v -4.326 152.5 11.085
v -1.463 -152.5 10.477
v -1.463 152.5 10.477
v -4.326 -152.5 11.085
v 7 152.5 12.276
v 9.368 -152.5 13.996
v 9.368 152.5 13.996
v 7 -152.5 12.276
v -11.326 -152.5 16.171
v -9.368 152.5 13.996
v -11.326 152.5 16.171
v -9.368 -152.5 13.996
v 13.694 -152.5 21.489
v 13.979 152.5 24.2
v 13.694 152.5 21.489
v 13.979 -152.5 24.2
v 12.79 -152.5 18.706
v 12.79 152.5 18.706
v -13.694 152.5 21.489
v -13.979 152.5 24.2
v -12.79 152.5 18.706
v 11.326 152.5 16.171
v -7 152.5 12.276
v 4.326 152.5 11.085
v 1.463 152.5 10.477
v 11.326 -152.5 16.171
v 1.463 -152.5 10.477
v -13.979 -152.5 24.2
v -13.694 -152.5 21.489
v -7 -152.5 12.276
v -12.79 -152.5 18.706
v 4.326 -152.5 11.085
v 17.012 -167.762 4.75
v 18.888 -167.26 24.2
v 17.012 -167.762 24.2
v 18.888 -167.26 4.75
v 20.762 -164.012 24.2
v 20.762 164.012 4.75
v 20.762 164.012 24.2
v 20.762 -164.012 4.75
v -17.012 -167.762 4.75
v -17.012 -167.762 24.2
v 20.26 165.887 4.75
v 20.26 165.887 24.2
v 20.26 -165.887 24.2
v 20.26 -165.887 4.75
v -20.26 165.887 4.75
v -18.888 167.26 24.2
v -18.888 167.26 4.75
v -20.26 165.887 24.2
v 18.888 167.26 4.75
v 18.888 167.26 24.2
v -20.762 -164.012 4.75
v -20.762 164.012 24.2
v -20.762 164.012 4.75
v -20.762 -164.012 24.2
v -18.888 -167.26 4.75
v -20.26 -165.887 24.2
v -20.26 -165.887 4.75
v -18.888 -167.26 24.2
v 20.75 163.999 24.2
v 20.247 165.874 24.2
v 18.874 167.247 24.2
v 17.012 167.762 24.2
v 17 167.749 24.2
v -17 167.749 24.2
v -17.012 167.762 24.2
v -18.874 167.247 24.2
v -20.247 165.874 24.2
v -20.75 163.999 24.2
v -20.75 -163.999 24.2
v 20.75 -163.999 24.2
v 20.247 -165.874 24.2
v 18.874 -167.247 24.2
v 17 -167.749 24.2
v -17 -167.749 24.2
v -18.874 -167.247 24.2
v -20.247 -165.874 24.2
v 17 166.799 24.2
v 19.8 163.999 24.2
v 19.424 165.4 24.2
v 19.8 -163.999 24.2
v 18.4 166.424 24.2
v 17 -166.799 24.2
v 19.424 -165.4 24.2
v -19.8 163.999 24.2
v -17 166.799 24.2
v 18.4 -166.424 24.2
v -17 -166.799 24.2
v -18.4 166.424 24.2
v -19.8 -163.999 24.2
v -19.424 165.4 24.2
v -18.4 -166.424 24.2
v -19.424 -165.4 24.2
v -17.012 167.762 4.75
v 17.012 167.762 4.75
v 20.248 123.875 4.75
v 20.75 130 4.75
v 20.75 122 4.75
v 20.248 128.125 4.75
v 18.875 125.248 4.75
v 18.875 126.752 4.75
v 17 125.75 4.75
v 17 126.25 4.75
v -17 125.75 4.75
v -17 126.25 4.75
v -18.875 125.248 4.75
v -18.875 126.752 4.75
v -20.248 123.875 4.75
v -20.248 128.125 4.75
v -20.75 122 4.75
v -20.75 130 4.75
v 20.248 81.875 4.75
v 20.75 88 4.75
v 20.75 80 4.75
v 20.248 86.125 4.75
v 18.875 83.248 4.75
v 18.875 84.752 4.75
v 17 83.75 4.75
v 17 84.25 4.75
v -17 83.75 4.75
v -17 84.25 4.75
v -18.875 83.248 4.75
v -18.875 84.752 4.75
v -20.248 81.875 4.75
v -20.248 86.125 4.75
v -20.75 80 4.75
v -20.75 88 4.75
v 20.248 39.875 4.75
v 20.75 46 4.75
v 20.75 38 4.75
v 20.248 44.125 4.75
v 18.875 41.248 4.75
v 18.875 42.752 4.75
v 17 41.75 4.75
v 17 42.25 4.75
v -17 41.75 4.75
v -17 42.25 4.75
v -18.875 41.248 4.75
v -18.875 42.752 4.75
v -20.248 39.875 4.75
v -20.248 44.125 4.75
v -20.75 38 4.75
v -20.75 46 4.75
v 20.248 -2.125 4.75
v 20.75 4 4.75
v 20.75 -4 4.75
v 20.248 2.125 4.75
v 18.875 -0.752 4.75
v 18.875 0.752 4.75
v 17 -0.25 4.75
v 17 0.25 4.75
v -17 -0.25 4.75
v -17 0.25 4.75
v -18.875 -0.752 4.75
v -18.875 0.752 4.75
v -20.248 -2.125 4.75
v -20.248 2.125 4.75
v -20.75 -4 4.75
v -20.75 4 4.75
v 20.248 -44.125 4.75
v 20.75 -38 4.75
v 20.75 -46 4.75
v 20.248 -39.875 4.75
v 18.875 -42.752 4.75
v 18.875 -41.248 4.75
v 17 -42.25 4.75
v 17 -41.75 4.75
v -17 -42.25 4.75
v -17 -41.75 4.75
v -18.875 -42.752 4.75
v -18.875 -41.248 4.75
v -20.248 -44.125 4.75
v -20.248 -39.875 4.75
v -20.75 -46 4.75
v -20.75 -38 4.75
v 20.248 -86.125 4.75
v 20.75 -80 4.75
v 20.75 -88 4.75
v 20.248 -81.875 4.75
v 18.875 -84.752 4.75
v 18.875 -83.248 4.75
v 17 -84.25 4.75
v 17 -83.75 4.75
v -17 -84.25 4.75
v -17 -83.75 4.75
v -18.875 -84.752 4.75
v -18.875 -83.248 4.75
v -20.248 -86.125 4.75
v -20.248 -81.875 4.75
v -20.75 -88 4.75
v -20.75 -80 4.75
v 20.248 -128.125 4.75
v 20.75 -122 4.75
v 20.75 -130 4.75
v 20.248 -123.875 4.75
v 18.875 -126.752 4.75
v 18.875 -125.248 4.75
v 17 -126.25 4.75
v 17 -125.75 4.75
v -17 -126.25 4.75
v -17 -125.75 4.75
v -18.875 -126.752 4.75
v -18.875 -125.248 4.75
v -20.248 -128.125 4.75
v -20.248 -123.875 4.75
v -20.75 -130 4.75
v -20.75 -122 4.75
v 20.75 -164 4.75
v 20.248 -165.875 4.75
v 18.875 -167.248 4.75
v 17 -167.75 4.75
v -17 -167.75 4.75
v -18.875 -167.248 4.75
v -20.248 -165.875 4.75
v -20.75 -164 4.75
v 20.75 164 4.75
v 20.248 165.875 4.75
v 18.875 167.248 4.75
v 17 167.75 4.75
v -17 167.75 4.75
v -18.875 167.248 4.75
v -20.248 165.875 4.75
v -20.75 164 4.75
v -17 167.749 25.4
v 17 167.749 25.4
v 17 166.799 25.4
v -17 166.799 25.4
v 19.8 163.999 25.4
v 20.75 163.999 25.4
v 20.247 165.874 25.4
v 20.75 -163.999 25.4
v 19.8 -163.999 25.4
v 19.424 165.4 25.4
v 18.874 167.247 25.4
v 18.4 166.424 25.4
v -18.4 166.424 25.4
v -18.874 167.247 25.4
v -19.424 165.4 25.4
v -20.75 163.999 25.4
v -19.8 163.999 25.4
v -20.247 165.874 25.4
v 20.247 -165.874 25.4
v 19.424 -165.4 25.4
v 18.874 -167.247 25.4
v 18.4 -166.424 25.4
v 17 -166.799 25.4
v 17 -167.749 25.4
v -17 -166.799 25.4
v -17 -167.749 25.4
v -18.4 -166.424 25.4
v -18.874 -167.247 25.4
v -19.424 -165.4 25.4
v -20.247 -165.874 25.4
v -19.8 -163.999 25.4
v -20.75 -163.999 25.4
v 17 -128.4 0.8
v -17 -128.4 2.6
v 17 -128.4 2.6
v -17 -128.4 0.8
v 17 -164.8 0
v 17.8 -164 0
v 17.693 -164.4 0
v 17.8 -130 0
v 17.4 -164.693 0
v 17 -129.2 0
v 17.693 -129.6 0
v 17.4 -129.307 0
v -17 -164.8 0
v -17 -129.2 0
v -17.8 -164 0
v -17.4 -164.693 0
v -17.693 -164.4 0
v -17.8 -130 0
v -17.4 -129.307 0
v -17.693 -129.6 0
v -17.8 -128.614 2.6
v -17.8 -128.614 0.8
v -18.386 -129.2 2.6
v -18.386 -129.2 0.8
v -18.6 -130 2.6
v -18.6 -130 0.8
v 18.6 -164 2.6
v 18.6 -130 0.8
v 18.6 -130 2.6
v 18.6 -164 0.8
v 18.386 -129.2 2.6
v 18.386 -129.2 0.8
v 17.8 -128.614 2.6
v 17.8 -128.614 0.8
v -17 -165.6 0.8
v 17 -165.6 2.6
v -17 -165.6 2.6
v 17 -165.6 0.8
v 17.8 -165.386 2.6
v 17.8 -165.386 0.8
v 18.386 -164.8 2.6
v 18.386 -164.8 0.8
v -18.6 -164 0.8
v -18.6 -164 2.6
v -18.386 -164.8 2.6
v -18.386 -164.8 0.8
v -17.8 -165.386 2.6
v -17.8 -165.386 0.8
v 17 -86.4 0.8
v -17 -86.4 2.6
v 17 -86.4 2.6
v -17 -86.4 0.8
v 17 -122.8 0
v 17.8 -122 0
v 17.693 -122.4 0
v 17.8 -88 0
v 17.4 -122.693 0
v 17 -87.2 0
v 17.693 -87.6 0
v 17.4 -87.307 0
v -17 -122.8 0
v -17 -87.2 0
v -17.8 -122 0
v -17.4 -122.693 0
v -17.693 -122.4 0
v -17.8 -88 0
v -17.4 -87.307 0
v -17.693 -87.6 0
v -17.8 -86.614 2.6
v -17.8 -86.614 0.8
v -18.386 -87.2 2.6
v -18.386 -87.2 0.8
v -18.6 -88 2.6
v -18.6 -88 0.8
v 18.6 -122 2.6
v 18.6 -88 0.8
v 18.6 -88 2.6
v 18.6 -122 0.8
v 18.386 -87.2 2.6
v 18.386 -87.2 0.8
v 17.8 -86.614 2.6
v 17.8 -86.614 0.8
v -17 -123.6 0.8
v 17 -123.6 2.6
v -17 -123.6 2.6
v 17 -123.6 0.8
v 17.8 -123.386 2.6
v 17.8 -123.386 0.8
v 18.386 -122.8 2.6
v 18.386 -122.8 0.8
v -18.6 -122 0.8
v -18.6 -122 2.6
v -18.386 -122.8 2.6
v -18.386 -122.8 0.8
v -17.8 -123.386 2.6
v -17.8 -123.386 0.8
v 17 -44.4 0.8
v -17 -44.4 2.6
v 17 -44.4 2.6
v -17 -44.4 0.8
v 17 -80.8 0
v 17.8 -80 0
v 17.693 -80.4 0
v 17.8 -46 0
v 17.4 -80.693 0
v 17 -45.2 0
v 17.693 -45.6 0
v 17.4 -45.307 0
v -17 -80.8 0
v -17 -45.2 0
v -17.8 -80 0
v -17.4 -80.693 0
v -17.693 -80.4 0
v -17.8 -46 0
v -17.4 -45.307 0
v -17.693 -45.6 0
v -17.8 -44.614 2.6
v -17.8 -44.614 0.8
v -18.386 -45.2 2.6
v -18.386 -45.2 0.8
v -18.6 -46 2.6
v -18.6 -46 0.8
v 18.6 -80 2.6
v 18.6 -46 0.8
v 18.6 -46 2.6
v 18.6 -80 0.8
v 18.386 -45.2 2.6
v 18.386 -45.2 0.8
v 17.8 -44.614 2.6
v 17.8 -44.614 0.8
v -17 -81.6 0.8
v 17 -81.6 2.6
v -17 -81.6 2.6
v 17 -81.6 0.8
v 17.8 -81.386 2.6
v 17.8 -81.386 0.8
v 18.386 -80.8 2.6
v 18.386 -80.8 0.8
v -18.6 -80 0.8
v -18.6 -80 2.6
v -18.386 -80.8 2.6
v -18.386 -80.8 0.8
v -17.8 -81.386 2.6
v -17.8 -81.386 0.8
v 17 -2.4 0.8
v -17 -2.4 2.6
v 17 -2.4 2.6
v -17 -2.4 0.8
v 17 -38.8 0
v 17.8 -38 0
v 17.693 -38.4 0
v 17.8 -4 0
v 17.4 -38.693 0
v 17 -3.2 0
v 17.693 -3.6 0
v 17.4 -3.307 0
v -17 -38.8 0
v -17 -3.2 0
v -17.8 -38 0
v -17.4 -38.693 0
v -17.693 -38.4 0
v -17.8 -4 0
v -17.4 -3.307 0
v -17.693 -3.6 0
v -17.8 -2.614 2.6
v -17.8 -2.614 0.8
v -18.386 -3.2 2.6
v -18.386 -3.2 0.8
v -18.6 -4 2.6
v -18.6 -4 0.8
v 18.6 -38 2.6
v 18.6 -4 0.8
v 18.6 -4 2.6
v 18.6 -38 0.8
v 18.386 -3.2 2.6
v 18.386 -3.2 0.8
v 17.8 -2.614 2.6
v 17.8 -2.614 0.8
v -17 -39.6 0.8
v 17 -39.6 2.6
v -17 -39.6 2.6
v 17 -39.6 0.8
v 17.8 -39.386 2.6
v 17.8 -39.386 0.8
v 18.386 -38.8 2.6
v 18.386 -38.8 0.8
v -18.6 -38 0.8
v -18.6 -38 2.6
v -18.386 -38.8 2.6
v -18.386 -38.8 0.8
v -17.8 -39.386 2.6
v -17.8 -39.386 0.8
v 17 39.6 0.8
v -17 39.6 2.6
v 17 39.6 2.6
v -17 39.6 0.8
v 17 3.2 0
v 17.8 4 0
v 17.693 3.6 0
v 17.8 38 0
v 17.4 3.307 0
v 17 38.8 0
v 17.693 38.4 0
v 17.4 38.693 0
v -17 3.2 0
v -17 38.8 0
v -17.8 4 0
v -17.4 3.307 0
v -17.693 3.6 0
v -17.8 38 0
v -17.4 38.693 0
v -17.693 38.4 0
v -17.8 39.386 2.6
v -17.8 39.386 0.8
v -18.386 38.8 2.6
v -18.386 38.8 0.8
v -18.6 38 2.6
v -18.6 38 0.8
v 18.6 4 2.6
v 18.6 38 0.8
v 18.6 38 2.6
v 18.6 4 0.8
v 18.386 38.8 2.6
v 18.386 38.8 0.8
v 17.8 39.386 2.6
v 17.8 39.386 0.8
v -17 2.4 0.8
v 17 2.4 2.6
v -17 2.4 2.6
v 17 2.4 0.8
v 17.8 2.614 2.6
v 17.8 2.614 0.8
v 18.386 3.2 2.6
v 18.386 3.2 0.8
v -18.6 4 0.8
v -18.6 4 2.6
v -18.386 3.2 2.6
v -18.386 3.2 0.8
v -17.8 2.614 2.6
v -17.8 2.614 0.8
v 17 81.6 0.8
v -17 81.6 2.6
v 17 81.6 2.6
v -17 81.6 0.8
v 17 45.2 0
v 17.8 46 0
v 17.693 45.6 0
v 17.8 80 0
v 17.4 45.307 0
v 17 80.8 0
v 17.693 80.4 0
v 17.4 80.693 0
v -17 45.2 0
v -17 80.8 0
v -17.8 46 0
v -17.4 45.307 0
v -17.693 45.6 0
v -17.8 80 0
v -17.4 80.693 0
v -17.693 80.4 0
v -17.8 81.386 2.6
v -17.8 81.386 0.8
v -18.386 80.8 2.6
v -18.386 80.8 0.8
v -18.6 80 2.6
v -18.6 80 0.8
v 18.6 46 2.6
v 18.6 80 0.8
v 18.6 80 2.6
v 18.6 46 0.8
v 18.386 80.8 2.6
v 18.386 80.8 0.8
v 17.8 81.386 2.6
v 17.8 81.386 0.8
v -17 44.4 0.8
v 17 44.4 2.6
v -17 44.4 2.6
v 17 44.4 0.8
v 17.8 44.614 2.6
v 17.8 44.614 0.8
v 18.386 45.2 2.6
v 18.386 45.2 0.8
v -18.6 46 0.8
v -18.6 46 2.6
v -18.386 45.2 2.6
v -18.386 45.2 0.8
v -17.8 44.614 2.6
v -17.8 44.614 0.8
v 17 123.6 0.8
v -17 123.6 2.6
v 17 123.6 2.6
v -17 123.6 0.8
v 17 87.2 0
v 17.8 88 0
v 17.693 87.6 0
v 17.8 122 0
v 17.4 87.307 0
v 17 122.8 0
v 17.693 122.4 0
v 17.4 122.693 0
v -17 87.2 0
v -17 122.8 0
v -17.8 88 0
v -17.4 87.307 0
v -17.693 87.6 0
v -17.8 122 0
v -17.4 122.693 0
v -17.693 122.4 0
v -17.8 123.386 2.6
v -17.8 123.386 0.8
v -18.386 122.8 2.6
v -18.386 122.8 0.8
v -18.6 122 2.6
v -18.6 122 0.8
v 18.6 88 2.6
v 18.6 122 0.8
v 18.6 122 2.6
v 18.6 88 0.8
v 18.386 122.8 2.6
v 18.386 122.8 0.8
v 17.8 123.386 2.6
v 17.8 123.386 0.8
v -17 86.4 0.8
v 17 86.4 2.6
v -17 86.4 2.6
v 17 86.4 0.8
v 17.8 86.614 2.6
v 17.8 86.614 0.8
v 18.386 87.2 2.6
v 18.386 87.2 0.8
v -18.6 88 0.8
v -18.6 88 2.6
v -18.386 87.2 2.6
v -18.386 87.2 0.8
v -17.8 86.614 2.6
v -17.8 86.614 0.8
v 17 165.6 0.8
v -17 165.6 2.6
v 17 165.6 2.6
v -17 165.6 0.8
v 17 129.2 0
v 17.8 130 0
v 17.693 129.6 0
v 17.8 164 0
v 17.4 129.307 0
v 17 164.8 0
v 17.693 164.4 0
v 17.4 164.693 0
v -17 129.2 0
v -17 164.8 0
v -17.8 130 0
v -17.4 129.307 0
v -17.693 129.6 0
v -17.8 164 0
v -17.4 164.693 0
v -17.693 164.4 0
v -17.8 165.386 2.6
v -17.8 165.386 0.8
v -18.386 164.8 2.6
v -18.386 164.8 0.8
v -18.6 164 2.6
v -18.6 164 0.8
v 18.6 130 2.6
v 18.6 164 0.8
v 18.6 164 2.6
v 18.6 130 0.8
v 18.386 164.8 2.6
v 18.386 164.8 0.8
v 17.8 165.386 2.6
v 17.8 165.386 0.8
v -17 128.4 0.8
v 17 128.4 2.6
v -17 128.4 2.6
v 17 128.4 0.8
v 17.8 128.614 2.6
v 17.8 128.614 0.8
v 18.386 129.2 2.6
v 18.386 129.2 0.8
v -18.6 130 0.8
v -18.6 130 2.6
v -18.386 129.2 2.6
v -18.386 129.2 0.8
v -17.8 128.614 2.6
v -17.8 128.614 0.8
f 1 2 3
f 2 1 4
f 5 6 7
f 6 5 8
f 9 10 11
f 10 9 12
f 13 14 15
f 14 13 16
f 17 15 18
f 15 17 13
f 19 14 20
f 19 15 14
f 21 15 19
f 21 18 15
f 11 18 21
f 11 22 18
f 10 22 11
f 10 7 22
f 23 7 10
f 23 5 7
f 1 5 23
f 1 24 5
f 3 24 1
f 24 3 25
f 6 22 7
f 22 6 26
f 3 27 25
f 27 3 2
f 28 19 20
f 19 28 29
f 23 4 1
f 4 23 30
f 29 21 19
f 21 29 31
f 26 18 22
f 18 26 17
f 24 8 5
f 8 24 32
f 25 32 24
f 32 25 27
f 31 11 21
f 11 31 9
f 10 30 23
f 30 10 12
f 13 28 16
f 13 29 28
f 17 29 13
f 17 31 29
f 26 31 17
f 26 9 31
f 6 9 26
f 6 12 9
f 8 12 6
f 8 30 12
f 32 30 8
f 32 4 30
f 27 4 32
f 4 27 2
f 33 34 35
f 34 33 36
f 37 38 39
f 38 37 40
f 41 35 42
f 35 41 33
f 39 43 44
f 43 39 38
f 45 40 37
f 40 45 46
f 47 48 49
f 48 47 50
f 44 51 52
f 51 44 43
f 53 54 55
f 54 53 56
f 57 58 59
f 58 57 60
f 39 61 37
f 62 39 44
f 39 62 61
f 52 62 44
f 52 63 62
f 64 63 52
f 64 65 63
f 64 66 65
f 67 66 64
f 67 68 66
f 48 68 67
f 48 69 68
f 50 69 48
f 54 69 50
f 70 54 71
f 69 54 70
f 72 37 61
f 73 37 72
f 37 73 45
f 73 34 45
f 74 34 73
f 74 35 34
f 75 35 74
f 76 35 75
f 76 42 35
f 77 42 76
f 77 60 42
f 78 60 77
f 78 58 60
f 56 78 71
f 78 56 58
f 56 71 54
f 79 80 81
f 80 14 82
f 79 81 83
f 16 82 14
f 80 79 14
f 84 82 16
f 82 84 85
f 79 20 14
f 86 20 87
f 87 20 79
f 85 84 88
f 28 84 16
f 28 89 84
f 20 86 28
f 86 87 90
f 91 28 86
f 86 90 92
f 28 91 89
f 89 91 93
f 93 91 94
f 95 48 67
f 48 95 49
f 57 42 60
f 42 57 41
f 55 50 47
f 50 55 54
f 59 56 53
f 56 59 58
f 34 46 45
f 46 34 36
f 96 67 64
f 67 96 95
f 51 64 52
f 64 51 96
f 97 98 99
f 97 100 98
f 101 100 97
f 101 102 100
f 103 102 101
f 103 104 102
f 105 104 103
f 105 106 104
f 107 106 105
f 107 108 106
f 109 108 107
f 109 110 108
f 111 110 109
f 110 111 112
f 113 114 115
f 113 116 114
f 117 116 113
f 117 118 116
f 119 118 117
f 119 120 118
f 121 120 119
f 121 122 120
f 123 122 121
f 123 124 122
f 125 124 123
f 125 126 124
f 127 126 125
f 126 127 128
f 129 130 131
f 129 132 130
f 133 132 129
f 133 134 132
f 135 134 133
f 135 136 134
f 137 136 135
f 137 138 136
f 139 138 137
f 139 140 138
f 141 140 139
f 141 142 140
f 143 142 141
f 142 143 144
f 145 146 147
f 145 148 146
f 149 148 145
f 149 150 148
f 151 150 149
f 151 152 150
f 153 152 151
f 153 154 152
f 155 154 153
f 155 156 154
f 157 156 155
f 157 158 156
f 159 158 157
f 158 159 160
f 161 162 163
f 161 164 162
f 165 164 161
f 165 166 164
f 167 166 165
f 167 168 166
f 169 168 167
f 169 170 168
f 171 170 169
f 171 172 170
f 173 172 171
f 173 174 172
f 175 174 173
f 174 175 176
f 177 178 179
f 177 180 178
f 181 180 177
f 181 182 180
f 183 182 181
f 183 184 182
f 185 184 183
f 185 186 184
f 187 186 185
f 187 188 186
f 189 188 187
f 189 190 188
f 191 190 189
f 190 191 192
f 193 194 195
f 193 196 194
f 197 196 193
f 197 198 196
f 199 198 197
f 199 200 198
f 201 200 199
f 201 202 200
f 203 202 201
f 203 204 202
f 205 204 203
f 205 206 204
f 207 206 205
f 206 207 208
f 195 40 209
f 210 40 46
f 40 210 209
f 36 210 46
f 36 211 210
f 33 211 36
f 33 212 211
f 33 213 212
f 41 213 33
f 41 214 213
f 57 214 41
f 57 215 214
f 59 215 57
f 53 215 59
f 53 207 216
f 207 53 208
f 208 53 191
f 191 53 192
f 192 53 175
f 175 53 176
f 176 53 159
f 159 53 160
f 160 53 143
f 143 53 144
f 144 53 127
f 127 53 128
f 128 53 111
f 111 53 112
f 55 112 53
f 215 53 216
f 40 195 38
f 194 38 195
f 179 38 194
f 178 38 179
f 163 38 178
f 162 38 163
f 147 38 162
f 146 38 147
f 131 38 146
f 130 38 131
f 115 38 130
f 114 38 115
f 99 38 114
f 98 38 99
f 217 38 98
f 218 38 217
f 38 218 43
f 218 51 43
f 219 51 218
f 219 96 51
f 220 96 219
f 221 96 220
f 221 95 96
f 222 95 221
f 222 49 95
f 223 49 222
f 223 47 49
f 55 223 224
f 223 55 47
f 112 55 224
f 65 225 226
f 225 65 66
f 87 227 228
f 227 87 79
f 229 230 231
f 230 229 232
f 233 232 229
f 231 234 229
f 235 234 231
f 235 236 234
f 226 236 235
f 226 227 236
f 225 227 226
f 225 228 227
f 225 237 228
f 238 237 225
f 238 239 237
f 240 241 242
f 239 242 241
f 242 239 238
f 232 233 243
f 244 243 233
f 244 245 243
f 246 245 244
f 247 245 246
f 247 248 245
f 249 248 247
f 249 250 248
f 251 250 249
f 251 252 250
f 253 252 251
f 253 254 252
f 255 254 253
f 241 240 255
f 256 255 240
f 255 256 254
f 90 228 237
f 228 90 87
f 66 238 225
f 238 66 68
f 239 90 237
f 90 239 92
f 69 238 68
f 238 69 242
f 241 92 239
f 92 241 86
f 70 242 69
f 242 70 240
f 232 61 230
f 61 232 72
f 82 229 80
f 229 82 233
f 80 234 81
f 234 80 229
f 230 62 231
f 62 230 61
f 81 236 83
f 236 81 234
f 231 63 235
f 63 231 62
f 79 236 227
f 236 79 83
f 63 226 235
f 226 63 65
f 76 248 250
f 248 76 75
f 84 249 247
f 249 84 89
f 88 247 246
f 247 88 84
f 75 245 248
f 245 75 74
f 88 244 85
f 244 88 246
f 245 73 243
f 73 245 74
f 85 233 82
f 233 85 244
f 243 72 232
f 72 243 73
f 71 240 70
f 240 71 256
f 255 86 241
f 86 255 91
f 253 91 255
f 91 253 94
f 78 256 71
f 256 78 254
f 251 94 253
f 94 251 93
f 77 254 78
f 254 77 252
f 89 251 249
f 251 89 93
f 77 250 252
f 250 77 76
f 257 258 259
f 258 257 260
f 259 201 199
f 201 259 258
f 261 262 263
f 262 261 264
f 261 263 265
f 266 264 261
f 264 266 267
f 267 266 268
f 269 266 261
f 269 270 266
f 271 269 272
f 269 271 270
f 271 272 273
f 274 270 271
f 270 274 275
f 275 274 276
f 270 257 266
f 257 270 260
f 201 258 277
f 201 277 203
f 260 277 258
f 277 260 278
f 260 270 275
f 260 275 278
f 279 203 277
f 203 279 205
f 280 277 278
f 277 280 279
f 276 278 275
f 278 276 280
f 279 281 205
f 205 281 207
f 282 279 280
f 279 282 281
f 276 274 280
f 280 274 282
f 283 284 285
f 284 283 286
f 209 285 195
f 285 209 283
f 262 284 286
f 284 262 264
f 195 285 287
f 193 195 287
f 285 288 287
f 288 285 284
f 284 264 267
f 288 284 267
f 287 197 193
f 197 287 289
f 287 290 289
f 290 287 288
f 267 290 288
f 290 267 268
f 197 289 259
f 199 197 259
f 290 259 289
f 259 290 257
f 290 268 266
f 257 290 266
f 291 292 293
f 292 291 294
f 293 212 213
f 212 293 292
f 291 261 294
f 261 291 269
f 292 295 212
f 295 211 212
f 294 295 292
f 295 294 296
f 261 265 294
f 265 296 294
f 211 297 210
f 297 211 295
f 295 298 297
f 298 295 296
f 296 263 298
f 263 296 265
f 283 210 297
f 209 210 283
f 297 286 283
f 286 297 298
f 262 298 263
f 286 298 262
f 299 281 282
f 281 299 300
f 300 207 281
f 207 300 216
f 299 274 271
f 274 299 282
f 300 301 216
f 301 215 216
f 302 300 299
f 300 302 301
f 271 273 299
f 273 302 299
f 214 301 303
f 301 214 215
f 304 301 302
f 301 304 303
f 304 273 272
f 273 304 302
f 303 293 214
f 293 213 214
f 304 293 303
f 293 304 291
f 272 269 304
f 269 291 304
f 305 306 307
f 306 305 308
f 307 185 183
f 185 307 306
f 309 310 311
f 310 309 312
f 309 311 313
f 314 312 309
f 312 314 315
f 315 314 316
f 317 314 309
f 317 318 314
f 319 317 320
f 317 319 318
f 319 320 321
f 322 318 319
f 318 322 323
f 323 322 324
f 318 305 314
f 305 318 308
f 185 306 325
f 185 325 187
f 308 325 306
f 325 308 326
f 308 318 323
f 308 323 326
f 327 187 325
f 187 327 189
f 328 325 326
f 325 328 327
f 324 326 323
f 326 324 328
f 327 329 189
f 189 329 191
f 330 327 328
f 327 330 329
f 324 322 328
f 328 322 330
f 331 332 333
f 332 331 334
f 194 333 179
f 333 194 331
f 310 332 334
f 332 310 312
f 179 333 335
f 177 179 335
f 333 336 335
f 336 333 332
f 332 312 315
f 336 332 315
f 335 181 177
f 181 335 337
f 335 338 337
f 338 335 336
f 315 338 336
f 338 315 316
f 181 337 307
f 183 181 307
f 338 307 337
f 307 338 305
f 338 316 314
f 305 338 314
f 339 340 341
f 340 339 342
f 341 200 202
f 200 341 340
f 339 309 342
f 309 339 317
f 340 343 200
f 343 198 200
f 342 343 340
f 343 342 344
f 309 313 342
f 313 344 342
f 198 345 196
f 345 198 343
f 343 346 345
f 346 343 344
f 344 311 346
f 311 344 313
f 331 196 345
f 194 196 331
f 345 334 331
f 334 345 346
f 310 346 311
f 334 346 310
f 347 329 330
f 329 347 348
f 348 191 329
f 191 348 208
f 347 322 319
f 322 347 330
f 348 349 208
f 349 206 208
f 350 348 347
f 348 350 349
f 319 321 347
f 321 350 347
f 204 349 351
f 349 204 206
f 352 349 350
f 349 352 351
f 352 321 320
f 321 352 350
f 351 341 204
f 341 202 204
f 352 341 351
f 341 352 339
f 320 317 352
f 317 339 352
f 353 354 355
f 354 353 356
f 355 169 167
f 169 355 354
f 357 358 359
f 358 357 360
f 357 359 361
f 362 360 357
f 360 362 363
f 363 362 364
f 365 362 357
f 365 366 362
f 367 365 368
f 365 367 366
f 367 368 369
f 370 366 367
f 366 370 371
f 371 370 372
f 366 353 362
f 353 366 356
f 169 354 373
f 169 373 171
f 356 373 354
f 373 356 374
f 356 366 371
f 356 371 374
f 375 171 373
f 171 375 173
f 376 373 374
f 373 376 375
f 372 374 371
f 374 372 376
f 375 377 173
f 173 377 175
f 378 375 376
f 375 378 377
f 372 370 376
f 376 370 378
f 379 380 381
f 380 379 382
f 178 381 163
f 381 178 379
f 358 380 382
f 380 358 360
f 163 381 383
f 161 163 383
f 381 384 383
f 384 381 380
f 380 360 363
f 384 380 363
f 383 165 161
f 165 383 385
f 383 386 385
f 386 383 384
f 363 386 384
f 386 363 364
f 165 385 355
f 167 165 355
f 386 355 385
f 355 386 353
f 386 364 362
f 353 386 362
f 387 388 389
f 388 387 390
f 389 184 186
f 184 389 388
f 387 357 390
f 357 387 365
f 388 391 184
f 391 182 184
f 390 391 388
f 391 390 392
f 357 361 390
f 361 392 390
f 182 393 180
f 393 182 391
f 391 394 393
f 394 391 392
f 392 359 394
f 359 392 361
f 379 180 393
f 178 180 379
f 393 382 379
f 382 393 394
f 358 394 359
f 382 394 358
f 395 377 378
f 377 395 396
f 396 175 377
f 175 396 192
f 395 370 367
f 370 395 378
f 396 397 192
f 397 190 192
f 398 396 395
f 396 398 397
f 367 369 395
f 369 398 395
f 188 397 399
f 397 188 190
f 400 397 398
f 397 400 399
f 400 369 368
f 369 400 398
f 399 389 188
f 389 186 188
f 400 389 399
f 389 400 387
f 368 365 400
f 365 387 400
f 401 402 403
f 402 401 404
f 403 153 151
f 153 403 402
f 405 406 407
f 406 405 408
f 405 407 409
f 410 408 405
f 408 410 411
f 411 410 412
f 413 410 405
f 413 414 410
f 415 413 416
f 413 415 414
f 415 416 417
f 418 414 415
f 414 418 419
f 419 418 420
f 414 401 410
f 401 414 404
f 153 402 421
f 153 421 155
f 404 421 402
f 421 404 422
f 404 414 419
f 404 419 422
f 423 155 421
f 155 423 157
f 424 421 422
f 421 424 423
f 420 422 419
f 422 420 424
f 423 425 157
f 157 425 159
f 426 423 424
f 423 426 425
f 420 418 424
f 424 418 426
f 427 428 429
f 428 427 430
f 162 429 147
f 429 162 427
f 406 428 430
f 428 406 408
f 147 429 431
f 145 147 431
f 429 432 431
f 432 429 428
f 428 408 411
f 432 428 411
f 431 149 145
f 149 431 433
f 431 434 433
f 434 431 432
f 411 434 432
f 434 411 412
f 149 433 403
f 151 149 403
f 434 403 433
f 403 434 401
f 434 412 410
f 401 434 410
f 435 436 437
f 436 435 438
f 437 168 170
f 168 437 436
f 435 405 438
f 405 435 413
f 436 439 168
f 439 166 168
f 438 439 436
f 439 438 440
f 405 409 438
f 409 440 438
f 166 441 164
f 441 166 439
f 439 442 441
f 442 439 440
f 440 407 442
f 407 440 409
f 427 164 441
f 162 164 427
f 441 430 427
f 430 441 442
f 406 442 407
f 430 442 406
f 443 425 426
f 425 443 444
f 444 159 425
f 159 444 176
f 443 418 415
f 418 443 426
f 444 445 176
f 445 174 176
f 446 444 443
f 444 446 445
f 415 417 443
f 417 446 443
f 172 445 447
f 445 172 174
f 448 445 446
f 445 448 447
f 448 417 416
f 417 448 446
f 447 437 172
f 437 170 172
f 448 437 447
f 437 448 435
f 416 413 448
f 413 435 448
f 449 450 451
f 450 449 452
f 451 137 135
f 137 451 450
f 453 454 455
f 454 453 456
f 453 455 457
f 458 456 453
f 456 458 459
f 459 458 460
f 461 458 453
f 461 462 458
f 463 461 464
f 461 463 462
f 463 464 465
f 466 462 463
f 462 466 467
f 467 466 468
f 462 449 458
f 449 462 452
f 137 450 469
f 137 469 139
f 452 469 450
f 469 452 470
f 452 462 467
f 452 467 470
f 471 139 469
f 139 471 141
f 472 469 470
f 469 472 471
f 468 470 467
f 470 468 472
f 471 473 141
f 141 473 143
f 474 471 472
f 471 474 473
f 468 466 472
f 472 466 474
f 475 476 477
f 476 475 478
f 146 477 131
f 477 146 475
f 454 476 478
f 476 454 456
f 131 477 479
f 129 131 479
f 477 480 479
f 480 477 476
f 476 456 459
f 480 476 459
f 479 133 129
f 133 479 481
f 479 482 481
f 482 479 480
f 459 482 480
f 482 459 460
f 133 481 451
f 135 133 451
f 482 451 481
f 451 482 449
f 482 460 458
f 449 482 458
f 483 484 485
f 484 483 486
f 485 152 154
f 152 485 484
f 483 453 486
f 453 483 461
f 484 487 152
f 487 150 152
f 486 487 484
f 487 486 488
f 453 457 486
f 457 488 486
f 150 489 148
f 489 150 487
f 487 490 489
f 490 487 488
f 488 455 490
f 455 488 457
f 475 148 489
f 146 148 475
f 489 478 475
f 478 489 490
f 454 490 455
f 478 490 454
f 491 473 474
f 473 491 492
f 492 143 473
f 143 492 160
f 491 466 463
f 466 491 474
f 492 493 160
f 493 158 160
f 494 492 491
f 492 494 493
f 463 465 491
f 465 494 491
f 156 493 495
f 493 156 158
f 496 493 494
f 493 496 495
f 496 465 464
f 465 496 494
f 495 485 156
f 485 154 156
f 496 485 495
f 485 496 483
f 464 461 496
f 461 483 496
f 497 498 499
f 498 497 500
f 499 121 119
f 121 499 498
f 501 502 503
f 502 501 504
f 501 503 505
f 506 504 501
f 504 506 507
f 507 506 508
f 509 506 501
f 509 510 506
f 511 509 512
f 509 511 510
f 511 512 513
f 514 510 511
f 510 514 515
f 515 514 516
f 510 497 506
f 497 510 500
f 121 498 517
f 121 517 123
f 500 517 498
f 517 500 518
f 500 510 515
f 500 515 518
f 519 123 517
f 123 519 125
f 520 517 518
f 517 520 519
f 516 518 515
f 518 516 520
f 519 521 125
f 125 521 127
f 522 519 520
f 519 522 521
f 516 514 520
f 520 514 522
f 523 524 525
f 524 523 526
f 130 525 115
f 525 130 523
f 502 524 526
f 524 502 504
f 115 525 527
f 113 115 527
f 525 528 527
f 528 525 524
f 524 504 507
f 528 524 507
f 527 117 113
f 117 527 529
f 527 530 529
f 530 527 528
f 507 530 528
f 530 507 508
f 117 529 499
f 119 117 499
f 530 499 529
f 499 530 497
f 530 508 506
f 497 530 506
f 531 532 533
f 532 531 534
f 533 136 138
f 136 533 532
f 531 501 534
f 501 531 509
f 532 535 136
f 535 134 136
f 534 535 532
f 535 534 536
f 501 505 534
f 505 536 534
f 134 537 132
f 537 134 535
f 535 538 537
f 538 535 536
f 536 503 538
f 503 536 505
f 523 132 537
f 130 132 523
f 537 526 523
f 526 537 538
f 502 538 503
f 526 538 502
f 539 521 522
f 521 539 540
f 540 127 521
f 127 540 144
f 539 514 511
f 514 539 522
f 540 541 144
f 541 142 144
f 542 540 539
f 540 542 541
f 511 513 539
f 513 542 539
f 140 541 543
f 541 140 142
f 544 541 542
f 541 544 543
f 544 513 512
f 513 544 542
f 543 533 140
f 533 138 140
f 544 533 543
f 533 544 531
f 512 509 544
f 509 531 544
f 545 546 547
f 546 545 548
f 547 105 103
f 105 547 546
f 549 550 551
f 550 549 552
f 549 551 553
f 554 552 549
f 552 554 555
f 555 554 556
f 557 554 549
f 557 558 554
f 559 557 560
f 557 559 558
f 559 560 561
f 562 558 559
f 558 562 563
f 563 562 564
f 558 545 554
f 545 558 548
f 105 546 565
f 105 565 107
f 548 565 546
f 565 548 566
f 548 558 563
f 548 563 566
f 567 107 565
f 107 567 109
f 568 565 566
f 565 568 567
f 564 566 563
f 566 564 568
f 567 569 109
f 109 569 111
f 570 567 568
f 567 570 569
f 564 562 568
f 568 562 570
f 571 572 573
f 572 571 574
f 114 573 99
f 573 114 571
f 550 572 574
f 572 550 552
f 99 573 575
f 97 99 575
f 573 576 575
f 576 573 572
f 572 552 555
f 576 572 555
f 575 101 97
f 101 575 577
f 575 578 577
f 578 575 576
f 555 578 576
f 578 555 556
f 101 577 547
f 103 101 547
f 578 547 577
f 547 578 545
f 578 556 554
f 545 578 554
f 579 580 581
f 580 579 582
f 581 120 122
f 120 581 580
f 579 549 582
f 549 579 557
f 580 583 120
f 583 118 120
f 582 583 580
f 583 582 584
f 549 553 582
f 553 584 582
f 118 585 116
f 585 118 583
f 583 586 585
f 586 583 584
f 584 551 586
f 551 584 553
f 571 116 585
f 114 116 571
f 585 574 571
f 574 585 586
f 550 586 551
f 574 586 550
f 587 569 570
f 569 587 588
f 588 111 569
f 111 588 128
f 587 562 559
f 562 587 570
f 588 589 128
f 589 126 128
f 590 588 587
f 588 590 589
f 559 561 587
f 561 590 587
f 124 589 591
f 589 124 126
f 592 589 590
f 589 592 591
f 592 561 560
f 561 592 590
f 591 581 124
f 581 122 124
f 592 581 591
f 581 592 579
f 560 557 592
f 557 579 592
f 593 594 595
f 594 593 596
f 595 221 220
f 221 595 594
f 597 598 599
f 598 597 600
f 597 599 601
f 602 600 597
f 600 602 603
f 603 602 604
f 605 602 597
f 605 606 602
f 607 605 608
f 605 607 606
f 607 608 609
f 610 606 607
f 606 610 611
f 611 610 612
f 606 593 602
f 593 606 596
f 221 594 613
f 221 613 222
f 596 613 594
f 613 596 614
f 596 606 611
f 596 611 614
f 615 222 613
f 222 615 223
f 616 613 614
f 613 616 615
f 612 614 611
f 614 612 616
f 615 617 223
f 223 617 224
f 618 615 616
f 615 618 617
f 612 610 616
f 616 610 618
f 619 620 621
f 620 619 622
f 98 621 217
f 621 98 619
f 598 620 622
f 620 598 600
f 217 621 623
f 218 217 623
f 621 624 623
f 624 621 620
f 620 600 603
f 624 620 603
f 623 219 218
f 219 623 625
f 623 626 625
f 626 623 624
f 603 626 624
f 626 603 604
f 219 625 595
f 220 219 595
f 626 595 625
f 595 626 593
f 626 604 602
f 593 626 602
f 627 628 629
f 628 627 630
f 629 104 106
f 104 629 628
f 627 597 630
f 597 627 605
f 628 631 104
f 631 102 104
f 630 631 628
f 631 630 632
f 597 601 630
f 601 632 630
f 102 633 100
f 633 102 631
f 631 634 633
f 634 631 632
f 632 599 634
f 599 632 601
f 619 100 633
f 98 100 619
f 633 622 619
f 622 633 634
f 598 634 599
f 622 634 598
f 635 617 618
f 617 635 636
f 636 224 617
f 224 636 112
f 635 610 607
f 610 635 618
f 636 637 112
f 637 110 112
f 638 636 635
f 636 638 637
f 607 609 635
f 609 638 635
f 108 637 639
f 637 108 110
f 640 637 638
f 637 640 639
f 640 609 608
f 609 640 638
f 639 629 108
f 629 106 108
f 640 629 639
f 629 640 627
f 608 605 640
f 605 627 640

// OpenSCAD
use <entrypoint.scad>

custom_bin(gridx = 1, gridy = 8, gridz = 3, cdivx=1, cdivy=1, divy=0, divx=0, cd=28, height_internal=0, c_depth=1); 
